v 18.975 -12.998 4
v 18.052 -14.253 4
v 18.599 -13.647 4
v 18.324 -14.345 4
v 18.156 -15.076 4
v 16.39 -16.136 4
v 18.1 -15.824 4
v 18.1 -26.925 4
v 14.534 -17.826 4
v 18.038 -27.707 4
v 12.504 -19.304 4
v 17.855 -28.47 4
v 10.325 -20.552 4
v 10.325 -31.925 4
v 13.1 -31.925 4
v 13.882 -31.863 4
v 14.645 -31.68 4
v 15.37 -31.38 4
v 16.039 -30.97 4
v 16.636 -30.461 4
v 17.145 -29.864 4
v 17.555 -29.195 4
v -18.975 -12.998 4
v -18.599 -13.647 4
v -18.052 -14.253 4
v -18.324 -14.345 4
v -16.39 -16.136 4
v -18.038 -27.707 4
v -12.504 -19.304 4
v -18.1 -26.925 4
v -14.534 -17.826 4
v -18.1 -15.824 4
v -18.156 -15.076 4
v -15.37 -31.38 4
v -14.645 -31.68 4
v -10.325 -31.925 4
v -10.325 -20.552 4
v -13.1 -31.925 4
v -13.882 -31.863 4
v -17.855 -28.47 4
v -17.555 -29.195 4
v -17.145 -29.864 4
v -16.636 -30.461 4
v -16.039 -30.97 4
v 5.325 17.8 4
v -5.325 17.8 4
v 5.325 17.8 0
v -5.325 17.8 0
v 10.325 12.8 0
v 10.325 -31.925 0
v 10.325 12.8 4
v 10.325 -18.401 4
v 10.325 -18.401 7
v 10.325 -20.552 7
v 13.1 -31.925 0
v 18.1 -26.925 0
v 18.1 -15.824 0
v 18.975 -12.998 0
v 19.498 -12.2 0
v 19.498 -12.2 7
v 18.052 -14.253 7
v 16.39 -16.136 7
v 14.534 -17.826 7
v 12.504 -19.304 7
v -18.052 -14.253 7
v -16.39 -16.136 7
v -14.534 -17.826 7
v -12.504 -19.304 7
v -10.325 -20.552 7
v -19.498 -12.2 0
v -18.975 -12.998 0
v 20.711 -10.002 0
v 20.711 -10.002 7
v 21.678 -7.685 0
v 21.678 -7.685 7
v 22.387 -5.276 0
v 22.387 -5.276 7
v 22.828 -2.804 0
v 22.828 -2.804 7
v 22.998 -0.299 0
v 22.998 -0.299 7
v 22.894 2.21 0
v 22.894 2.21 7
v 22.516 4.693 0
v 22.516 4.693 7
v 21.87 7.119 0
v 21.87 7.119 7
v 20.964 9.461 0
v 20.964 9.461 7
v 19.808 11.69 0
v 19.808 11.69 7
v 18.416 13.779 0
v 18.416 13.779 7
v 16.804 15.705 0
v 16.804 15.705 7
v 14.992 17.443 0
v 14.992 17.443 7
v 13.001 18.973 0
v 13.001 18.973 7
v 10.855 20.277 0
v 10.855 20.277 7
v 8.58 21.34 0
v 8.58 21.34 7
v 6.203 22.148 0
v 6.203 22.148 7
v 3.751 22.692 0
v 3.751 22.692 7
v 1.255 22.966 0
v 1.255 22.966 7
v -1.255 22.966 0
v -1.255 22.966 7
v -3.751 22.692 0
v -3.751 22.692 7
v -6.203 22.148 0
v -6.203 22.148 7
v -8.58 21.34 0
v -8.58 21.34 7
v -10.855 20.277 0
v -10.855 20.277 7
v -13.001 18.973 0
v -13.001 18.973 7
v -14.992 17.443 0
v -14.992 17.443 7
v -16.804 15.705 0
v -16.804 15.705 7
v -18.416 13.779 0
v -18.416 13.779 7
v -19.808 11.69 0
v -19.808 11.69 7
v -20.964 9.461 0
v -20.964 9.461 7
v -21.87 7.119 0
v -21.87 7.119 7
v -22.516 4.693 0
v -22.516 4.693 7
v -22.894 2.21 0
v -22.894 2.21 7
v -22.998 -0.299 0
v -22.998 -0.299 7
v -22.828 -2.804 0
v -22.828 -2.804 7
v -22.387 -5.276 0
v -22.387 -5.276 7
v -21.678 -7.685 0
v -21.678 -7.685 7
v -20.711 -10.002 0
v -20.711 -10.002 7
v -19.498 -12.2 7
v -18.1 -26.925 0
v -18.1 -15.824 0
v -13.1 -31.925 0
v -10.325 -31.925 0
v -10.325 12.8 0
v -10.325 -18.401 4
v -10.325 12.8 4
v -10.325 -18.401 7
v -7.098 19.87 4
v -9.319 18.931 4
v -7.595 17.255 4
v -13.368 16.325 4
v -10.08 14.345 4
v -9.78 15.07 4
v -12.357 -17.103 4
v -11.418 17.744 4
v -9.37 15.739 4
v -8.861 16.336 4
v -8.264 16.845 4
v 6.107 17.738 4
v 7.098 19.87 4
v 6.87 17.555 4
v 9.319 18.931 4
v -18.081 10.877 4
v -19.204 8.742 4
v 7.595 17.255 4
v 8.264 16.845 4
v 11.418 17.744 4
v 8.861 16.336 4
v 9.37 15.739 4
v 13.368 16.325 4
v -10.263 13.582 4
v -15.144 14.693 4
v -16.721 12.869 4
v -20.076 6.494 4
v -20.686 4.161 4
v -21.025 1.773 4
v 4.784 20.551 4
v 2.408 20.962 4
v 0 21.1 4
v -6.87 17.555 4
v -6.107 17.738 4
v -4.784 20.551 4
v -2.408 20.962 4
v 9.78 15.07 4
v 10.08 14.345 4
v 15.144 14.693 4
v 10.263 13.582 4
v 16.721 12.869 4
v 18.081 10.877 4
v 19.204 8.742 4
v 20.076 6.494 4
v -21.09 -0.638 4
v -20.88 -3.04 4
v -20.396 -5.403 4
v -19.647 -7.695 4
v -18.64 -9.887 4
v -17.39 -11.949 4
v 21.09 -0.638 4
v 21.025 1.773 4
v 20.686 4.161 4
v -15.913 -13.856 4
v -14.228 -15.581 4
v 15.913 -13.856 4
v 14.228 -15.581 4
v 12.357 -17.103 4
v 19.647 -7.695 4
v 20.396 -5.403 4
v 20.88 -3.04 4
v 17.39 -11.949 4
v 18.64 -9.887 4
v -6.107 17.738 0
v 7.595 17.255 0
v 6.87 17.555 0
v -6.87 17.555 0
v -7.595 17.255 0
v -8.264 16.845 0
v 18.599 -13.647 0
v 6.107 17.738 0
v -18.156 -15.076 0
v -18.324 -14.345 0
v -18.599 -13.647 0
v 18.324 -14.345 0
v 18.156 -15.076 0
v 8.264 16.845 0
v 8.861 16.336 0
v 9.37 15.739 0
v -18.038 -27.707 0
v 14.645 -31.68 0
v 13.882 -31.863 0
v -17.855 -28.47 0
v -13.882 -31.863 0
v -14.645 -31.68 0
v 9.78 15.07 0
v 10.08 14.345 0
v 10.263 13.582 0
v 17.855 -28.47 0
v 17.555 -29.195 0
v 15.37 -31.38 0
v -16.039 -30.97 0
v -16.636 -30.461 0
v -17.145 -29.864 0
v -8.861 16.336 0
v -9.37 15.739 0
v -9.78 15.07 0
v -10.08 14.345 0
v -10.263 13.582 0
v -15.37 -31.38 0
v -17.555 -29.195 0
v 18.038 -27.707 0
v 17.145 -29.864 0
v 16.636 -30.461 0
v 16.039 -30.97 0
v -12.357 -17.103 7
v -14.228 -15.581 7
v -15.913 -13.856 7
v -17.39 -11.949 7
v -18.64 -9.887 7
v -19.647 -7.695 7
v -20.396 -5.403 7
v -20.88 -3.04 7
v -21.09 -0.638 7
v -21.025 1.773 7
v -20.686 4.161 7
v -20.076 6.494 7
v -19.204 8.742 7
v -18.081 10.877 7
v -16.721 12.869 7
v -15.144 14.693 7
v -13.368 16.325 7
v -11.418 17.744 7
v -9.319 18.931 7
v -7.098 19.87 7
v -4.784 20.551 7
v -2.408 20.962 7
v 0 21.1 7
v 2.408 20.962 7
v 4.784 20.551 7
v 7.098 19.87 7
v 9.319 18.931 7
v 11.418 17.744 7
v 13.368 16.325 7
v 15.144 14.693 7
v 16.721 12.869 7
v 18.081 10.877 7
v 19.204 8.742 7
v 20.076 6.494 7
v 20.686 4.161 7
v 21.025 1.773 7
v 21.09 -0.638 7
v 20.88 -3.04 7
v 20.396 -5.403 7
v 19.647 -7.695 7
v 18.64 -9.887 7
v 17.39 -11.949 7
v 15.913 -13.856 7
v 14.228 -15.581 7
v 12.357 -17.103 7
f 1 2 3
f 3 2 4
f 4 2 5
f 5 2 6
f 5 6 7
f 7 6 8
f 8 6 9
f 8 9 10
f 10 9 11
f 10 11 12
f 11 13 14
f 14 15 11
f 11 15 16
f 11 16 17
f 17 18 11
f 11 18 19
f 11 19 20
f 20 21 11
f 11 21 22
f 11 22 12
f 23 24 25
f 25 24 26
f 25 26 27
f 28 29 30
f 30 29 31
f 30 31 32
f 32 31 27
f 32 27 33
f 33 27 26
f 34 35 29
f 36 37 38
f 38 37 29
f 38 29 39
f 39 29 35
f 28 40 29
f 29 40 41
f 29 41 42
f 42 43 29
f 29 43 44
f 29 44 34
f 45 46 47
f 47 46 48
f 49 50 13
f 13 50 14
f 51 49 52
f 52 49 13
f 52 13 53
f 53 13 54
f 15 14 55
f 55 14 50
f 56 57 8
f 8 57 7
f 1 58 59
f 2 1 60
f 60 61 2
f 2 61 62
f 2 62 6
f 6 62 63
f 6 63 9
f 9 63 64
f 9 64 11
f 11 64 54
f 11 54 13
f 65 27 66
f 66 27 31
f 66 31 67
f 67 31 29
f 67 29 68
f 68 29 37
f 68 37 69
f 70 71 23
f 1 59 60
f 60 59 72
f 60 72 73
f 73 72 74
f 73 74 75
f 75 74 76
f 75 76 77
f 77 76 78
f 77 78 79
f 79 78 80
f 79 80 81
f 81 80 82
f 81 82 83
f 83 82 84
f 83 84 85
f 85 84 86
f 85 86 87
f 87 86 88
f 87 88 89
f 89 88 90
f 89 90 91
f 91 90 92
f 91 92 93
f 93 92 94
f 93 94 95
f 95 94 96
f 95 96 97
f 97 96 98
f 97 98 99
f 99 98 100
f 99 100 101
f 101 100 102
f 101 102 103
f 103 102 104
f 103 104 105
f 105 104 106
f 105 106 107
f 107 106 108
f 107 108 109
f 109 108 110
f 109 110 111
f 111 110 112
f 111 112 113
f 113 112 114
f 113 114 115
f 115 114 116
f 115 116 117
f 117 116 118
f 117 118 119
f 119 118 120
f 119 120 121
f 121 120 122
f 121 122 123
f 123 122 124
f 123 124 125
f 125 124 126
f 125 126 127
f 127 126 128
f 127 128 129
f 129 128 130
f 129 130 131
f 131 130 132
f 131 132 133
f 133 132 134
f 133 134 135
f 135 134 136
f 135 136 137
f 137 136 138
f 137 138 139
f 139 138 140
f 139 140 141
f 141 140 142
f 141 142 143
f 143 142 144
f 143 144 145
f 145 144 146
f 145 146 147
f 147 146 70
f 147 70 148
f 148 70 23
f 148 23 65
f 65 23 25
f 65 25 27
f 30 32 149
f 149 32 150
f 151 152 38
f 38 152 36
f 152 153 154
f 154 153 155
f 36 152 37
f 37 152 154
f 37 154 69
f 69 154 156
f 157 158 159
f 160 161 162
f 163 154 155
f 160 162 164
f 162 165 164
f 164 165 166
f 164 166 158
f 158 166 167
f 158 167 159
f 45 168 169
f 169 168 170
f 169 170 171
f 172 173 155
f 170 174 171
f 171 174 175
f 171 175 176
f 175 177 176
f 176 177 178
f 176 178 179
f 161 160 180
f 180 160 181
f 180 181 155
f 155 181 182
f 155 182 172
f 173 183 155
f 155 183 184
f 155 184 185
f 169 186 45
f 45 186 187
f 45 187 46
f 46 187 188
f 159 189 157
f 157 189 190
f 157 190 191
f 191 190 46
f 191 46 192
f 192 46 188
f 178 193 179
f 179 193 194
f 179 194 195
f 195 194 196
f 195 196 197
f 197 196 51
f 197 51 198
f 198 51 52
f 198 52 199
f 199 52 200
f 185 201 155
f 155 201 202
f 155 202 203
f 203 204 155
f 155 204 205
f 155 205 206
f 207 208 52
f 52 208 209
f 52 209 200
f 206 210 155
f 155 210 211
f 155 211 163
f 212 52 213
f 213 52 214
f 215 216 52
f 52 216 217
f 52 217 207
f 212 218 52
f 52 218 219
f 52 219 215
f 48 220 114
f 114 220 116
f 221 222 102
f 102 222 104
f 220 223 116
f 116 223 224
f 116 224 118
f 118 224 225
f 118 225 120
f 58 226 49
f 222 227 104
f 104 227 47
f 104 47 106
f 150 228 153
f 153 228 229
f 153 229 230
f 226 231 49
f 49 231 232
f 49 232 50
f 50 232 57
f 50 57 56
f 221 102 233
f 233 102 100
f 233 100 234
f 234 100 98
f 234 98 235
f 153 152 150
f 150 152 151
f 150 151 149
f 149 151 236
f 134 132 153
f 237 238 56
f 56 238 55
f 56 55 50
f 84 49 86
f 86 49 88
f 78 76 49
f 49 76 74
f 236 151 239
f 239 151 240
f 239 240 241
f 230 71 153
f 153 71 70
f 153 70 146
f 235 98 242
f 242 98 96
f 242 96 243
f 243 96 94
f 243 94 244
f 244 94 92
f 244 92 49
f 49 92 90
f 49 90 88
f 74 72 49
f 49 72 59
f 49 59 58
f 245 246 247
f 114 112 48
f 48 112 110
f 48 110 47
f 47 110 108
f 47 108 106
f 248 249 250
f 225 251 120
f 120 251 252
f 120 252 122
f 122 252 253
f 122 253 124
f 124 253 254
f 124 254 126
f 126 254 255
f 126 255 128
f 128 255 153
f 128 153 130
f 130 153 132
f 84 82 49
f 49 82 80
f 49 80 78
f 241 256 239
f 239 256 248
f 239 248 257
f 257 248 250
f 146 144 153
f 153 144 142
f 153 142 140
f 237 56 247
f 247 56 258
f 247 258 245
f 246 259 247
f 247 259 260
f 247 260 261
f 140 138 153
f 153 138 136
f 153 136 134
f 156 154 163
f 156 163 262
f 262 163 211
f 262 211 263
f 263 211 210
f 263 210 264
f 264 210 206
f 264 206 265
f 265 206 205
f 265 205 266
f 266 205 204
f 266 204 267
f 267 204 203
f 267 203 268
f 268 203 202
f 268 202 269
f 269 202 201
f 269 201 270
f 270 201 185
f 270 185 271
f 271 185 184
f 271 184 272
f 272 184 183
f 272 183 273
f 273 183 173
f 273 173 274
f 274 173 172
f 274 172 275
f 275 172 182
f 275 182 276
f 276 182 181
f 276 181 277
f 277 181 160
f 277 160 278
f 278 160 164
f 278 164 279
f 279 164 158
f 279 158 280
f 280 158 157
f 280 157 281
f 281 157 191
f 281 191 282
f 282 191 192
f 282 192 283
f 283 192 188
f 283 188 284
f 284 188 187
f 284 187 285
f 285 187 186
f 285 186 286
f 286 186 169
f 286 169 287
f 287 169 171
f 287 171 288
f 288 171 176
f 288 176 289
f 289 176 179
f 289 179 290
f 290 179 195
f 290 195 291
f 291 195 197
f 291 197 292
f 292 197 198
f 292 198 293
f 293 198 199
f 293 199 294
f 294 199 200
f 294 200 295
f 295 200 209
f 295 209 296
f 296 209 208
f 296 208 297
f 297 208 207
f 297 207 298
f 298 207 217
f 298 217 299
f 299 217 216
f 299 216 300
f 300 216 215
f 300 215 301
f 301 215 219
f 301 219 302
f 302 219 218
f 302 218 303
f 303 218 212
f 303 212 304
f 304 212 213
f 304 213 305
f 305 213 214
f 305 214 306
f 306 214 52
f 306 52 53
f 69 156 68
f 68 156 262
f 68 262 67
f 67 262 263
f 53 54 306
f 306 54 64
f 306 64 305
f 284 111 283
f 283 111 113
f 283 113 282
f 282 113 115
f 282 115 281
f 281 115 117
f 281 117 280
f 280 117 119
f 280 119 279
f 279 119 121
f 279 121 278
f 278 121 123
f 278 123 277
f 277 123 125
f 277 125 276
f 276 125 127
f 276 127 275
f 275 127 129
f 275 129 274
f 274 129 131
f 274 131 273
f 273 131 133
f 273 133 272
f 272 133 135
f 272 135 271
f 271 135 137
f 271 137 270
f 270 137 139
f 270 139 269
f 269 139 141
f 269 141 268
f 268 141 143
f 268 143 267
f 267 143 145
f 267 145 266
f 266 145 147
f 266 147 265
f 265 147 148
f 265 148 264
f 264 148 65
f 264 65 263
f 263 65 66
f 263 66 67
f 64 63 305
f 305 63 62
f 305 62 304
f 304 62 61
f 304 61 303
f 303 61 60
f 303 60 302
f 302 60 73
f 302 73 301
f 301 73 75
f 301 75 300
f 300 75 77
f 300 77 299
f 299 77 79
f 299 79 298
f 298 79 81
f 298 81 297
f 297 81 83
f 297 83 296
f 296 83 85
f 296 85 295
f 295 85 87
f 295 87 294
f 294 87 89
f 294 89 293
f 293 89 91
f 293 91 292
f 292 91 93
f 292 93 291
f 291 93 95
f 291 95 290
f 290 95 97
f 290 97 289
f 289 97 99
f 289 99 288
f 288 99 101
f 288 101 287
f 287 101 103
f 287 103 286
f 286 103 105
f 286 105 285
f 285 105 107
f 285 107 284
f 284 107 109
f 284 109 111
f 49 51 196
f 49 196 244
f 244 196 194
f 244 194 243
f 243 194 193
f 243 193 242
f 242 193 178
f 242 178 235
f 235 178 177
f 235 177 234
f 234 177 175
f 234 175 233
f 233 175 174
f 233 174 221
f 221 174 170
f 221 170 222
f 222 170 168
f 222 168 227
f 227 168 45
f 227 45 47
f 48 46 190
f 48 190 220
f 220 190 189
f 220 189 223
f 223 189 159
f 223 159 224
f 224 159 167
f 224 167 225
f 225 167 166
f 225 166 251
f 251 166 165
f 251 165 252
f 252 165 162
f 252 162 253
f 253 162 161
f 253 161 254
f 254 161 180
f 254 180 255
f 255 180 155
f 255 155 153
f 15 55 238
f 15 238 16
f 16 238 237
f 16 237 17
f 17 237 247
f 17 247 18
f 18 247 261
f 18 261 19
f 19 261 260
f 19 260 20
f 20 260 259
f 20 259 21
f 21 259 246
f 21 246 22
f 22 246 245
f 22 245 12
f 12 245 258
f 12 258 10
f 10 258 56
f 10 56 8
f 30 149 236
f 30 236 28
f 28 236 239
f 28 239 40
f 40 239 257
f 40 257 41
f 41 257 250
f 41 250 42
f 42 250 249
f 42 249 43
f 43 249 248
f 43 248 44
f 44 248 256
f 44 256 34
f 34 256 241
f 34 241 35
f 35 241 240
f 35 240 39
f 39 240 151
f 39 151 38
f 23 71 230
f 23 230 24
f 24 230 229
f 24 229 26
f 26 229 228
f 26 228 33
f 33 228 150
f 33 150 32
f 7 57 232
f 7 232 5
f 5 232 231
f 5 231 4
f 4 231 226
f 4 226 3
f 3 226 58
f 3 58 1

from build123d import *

# Parameters (mm, degrees)
BOSS_EXTRUDE1_DEPTH = 4
BOSS_EXTRUDE2_DEPTH = 3
FILLET1_R           = 5
FILLET2_R           = 5


with BuildPart() as part:
    # Sketch1 → Boss-Extrude1 (new body)
    with BuildSketch(Plane.XY):
        with BuildLine():
            Line((-10.325, 10.325), (-10.325, -31.925))
            Line((-10.325, -31.925), (-18.1, -31.925))
            Line((-18.1, -31.925), (-18.1, -14.191194453))
            ThreePointArc((-18.1, -14.191194453), (0, 23), (18.1, -14.191194453))
            Line((18.1, -14.191194453), (18.1, -31.925))
            Line((18.1, -31.925), (10.325, -31.925))
            Line((10.325, -31.925), (10.325, 10.325))
            Line((10.325, 10.325), (10.325, 17.8))
            Line((10.325, 17.8), (-10.325, 17.8))
            Line((-10.325, 17.8), (-10.325, 10.325))
        make_face()
    extrude(amount=BOSS_EXTRUDE1_DEPTH)

    # Sketch2 → Boss-Extrude2 (add)
    with BuildSketch(Plane.XY.offset(4)):
        with BuildLine():
            Line((-10.325, -18.401205803), (-10.325, -20.55223528))
            ThreePointArc((-10.325, -20.55223528), (0, 23), (10.325, -20.55223528))
            Line((10.325, -20.55223528), (10.325, -18.401205803))
            ThreePointArc((10.325, -18.401205803), (0, 21.1), (-10.325, -18.401205803))
        make_face()
    extrude(amount=BOSS_EXTRUDE2_DEPTH)

    # Fillet1
    fillet1_edges = [part.edges().sort_by_distance(p)[0] for p in [
        (10.325, 17.8, 2),
        (-10.325, 17.8, 2),
    ]]
    fillet(fillet1_edges, radius=FILLET1_R)

    # Fillet2
    fillet2_edges = [part.edges().sort_by_distance(p)[0] for p in [
        (18.1, -31.925, 2),
        (-18.1, -31.925, 2),
        (-18.1, -14.191194453, 2),
        (18.1, -14.191194453, 2),
    ]]
    fillet(fillet2_edges, radius=FILLET2_R)


solid = part.part
